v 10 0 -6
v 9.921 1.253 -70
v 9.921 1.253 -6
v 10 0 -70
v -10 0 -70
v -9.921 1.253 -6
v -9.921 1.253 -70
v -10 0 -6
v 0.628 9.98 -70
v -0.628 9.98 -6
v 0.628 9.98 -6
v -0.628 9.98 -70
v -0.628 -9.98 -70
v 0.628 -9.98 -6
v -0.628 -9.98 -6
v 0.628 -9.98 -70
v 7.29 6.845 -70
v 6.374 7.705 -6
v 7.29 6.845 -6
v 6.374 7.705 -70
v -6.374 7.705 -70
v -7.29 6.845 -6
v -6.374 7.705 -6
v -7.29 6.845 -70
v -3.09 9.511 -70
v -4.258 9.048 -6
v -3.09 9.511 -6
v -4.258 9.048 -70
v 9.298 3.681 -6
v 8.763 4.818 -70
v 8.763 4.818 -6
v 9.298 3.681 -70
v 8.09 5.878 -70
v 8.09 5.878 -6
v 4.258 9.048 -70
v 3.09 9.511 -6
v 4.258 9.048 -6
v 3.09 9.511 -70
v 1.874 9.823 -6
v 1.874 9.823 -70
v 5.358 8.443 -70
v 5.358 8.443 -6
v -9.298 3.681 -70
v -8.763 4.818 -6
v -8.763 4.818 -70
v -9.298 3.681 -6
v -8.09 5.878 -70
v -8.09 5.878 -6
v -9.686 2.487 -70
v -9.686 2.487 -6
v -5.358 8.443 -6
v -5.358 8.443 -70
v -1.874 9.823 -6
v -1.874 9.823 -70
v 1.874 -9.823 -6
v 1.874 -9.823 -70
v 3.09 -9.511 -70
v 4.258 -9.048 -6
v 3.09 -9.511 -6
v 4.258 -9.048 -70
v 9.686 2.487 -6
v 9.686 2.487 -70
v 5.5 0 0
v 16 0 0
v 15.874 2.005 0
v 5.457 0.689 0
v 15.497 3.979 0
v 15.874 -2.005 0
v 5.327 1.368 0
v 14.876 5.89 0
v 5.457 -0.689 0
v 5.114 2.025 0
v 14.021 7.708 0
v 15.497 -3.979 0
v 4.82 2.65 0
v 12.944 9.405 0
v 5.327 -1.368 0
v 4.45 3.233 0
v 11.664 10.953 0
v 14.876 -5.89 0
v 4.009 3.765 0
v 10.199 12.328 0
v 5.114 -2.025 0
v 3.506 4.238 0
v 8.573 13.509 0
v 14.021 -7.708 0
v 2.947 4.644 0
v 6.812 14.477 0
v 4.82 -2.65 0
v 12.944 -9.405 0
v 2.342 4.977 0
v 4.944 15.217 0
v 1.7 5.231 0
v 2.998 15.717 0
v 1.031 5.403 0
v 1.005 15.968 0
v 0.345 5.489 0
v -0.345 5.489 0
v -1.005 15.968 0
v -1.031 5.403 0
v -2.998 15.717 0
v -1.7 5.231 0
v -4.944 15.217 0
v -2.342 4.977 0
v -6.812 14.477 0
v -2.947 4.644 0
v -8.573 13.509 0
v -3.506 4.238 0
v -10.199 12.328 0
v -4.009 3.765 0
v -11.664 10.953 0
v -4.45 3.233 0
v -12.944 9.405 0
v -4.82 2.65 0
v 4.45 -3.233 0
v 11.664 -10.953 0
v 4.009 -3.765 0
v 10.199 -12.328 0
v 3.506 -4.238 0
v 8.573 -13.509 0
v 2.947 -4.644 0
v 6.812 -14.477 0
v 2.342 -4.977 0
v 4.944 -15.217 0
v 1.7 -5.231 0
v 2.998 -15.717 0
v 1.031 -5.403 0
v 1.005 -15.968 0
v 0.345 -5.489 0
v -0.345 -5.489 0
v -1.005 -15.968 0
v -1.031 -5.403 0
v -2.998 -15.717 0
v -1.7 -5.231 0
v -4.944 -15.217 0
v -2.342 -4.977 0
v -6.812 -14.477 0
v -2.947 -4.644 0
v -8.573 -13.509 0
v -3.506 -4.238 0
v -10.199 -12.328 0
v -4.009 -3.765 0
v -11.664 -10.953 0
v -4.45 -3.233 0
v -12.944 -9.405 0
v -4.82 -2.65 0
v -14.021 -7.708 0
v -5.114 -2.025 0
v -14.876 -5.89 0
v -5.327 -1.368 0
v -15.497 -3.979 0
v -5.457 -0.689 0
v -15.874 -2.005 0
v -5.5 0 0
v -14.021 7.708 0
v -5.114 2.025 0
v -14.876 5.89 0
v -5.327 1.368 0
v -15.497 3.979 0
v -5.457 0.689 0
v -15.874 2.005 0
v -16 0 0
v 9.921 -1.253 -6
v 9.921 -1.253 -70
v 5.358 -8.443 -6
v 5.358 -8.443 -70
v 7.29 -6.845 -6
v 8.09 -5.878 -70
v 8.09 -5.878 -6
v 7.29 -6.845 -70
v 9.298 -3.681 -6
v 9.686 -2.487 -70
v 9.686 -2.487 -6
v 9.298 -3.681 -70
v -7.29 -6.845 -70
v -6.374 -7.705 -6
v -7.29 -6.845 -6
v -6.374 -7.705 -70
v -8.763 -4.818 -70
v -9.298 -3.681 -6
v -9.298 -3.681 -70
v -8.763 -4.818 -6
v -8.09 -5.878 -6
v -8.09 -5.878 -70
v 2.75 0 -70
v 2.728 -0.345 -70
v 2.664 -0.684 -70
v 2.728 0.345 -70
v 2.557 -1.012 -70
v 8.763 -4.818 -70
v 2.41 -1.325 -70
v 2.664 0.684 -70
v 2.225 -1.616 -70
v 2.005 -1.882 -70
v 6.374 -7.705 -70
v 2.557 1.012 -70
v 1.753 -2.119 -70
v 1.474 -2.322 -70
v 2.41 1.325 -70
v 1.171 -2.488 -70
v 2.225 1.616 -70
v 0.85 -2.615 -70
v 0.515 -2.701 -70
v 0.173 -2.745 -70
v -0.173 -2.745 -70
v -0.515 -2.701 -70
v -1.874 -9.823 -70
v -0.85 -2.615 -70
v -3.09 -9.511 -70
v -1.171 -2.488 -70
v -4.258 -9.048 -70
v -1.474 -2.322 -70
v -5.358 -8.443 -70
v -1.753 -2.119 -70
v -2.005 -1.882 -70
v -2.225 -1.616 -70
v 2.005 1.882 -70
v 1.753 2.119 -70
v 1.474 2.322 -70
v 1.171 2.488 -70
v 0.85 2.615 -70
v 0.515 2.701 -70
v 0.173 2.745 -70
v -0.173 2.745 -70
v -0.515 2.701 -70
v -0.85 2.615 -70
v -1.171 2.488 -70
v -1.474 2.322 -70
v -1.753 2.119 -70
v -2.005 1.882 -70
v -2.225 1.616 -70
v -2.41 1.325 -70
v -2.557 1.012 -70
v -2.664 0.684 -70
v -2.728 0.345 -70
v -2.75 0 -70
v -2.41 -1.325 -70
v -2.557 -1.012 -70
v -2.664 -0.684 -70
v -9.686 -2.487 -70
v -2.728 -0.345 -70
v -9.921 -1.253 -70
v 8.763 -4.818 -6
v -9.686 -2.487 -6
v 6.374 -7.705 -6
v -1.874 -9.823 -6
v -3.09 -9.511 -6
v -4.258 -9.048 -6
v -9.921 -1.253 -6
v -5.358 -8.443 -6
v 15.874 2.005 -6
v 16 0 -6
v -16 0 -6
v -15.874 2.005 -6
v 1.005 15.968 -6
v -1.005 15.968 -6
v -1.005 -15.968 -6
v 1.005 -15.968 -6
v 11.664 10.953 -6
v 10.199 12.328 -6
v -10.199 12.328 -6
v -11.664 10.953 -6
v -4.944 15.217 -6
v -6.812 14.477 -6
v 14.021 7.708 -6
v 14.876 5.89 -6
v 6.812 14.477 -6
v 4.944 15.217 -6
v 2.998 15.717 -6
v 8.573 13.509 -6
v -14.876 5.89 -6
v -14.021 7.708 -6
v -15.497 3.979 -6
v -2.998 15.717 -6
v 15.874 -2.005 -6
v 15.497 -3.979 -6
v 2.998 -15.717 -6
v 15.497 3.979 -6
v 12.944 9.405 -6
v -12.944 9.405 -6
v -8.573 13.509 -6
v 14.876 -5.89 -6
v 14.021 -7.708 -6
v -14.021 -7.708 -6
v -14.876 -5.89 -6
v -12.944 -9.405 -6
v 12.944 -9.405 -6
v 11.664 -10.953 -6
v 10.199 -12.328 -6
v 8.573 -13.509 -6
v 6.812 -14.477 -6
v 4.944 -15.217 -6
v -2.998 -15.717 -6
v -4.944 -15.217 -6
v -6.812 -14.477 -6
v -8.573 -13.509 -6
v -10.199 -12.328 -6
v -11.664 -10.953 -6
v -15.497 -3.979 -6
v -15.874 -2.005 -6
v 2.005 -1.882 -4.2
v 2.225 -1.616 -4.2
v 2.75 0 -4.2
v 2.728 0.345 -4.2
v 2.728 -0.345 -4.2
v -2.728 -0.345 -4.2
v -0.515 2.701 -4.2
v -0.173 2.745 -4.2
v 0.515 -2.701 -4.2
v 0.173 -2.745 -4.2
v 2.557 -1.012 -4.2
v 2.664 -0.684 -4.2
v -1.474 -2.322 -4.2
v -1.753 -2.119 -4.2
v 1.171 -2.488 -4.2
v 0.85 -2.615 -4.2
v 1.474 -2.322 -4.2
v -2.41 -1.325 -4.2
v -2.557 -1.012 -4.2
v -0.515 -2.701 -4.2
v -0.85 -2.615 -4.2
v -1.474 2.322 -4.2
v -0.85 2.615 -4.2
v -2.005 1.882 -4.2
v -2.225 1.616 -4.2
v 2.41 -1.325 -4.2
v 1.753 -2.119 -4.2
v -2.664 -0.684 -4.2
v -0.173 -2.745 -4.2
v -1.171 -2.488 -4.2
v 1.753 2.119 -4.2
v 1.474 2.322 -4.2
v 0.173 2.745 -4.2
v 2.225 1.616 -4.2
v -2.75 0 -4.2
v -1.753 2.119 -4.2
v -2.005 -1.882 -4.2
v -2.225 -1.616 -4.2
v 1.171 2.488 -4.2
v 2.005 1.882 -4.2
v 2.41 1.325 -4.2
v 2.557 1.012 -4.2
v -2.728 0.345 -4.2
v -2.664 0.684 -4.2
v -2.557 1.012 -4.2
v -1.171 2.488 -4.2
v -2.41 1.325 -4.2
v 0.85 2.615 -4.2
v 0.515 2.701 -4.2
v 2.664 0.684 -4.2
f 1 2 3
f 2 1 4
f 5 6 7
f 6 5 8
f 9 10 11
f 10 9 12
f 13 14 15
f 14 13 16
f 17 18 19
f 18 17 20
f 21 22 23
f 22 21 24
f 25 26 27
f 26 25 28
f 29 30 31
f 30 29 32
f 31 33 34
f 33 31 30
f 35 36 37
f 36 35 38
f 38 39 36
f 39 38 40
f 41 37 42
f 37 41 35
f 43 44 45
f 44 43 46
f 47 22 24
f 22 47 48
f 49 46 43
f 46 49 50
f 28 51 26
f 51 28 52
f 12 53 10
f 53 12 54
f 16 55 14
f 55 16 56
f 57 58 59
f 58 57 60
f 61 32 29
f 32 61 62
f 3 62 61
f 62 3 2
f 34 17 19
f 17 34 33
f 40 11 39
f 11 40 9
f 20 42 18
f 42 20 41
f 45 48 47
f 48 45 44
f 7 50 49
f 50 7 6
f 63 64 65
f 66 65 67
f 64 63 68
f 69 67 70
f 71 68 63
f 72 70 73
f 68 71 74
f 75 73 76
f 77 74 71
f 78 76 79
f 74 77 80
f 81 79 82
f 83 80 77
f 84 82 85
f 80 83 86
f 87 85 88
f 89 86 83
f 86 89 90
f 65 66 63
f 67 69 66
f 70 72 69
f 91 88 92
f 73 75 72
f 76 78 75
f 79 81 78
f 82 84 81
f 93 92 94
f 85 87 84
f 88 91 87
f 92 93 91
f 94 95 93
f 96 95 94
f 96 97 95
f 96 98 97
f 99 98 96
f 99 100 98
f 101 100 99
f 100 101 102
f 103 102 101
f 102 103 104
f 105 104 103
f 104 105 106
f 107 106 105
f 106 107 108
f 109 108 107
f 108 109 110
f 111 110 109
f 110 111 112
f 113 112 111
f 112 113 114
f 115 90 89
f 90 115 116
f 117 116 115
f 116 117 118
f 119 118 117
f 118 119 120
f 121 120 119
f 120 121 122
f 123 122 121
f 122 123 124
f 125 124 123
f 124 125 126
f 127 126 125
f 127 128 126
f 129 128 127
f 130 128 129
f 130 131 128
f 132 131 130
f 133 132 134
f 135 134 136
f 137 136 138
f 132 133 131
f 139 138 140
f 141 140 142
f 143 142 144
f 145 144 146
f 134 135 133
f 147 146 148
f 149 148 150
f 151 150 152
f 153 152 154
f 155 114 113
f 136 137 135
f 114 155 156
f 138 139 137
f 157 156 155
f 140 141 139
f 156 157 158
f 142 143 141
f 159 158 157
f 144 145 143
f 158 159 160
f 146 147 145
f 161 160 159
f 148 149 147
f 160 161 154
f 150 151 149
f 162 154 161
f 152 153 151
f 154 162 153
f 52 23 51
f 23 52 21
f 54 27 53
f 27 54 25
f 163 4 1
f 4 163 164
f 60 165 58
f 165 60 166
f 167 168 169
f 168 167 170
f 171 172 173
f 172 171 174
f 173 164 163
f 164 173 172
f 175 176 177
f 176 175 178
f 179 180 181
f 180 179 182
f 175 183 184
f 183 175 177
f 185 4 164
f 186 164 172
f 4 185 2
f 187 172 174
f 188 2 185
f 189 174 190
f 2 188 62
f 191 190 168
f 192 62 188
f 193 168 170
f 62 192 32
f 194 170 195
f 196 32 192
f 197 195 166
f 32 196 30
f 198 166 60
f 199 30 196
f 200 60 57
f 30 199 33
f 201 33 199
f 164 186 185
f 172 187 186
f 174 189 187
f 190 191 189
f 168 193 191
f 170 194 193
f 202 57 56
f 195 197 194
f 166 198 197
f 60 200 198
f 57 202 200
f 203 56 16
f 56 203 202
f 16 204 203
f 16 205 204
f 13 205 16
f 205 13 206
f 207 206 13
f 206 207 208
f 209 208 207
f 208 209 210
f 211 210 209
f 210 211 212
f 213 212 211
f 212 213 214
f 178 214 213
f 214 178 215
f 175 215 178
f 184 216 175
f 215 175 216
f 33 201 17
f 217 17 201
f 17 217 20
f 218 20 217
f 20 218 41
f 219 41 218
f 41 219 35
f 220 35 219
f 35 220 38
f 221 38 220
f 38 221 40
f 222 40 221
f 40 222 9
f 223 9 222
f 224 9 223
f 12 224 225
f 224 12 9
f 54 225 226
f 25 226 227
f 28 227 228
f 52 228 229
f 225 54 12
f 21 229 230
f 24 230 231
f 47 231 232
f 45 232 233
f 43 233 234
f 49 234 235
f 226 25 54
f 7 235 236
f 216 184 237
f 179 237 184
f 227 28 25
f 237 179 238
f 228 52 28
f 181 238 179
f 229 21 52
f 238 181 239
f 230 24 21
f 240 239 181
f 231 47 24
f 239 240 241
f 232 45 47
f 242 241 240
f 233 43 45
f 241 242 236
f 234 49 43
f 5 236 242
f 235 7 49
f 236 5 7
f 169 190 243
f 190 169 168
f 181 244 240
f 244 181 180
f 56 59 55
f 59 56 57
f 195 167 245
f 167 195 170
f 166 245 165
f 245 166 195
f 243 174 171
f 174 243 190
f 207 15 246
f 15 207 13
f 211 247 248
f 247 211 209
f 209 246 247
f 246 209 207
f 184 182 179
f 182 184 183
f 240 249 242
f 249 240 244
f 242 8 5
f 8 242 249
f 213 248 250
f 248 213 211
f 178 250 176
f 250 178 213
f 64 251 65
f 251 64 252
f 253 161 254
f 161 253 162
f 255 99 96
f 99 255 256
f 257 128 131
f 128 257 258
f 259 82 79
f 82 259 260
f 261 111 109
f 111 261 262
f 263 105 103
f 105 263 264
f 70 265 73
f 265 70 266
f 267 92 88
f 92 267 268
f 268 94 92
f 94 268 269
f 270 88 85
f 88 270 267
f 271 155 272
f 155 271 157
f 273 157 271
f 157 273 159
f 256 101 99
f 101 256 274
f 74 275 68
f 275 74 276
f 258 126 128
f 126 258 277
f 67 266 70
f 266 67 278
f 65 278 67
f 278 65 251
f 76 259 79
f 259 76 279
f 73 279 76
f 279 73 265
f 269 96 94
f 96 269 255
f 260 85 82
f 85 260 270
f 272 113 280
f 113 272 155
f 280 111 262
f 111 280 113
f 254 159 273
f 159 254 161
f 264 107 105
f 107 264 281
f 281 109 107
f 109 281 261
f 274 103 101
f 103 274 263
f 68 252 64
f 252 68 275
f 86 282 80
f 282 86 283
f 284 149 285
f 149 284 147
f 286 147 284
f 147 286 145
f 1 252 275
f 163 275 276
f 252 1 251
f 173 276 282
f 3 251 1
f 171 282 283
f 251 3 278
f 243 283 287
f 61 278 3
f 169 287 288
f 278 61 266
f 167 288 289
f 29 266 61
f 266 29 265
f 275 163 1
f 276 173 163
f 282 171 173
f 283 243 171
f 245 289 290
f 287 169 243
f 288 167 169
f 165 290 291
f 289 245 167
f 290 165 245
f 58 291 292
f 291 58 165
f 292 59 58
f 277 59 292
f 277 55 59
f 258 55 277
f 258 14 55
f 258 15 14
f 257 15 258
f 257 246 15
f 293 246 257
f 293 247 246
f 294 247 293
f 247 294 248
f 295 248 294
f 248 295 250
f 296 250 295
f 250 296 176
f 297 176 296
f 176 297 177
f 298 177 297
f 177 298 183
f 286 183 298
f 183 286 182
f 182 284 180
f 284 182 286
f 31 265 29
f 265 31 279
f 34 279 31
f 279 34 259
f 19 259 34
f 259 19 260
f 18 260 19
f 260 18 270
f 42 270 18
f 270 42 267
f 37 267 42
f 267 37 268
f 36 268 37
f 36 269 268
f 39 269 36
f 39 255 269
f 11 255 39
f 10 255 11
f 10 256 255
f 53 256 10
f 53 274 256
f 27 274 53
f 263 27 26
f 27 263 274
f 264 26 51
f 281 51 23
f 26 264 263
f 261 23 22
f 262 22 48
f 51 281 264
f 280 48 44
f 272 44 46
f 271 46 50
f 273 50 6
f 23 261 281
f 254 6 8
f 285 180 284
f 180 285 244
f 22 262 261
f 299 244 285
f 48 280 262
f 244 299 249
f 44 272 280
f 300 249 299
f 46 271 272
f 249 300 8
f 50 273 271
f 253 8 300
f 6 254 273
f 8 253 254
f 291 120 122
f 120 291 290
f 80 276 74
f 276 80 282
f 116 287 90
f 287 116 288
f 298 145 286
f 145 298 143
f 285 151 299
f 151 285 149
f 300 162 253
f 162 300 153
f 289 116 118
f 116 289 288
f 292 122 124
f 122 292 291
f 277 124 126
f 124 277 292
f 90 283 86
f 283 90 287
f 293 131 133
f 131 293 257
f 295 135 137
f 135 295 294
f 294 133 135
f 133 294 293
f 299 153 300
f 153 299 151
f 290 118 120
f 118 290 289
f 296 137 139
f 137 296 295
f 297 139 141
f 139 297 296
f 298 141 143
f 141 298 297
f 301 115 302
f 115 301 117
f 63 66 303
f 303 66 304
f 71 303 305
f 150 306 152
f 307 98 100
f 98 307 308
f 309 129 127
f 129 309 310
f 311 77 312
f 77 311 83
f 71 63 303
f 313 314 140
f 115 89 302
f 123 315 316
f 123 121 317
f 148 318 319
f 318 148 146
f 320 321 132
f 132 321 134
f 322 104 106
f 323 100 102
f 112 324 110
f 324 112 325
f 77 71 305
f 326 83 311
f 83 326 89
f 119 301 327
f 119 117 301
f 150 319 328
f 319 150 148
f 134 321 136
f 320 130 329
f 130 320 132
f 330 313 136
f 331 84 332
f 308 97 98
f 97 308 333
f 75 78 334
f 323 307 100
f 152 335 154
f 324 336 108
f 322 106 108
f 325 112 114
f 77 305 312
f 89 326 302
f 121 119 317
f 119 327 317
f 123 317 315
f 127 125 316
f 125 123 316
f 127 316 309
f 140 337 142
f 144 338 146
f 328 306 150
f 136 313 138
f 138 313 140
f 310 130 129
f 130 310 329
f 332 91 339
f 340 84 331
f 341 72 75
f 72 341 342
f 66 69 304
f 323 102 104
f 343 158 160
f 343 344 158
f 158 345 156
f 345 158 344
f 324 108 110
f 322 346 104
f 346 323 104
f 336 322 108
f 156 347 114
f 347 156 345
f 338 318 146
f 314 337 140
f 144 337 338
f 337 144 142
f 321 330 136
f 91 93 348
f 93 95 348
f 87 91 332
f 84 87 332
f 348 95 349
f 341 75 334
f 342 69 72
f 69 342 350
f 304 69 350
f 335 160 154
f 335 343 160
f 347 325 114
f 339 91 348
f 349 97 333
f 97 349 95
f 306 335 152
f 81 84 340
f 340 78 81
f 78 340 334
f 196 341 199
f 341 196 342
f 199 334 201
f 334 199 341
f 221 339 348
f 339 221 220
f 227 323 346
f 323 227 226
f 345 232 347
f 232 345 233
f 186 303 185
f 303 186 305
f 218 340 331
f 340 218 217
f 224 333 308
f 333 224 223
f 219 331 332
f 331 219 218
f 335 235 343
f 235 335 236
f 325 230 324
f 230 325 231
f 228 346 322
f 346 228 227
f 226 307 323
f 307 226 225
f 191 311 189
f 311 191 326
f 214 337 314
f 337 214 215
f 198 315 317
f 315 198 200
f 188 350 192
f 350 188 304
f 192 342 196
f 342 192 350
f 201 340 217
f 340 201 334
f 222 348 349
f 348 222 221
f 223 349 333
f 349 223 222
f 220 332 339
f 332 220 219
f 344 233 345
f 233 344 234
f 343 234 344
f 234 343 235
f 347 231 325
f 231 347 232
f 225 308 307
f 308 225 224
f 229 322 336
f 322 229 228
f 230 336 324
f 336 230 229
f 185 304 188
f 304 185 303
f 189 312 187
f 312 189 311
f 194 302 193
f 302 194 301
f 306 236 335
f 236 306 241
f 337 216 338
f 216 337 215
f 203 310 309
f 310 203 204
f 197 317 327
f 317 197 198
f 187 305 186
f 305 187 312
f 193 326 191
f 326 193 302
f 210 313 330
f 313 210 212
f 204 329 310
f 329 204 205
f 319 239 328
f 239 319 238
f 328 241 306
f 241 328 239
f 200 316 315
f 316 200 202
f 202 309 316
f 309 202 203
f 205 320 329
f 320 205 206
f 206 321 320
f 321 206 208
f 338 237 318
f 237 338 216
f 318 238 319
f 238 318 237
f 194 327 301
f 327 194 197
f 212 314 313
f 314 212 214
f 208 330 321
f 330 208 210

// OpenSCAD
$fn = 50;


difference() {
	union() {
		translate(v = [0, 0, -70.0000000000]) {
			cylinder(h = 70, r = 10.0000000000);
		}
		translate(v = [0, 0, -6.0000000000]) {
			cylinder(h = 6, r = 16.0000000000);
		}
	}
	union() {
		translate(v = [0, 0, 0]) {
			rotate(a = [0, 0, 0]) {
				difference() {
					union() {
						#translate(v = [0, 0, -70.0000000000]) {
							cylinder(h = 70, r = 2.2500000000);
						}
						#translate(v = [0, 0, -4.2000000000]) {
							cylinder(h = 4.2000000000, r1 = 2.7500000000, r2 = 5.5000000000);
						}
						#translate(v = [0, 0, -70.0000000000]) {
							cylinder(h = 70, r = 2.7500000000);
						}
						#translate(v = [0, 0, -70.0000000000]) {
							cylinder(h = 70, r = 2.2500000000);
						}
					}
					union();
				}
			}
		}
	}
}
